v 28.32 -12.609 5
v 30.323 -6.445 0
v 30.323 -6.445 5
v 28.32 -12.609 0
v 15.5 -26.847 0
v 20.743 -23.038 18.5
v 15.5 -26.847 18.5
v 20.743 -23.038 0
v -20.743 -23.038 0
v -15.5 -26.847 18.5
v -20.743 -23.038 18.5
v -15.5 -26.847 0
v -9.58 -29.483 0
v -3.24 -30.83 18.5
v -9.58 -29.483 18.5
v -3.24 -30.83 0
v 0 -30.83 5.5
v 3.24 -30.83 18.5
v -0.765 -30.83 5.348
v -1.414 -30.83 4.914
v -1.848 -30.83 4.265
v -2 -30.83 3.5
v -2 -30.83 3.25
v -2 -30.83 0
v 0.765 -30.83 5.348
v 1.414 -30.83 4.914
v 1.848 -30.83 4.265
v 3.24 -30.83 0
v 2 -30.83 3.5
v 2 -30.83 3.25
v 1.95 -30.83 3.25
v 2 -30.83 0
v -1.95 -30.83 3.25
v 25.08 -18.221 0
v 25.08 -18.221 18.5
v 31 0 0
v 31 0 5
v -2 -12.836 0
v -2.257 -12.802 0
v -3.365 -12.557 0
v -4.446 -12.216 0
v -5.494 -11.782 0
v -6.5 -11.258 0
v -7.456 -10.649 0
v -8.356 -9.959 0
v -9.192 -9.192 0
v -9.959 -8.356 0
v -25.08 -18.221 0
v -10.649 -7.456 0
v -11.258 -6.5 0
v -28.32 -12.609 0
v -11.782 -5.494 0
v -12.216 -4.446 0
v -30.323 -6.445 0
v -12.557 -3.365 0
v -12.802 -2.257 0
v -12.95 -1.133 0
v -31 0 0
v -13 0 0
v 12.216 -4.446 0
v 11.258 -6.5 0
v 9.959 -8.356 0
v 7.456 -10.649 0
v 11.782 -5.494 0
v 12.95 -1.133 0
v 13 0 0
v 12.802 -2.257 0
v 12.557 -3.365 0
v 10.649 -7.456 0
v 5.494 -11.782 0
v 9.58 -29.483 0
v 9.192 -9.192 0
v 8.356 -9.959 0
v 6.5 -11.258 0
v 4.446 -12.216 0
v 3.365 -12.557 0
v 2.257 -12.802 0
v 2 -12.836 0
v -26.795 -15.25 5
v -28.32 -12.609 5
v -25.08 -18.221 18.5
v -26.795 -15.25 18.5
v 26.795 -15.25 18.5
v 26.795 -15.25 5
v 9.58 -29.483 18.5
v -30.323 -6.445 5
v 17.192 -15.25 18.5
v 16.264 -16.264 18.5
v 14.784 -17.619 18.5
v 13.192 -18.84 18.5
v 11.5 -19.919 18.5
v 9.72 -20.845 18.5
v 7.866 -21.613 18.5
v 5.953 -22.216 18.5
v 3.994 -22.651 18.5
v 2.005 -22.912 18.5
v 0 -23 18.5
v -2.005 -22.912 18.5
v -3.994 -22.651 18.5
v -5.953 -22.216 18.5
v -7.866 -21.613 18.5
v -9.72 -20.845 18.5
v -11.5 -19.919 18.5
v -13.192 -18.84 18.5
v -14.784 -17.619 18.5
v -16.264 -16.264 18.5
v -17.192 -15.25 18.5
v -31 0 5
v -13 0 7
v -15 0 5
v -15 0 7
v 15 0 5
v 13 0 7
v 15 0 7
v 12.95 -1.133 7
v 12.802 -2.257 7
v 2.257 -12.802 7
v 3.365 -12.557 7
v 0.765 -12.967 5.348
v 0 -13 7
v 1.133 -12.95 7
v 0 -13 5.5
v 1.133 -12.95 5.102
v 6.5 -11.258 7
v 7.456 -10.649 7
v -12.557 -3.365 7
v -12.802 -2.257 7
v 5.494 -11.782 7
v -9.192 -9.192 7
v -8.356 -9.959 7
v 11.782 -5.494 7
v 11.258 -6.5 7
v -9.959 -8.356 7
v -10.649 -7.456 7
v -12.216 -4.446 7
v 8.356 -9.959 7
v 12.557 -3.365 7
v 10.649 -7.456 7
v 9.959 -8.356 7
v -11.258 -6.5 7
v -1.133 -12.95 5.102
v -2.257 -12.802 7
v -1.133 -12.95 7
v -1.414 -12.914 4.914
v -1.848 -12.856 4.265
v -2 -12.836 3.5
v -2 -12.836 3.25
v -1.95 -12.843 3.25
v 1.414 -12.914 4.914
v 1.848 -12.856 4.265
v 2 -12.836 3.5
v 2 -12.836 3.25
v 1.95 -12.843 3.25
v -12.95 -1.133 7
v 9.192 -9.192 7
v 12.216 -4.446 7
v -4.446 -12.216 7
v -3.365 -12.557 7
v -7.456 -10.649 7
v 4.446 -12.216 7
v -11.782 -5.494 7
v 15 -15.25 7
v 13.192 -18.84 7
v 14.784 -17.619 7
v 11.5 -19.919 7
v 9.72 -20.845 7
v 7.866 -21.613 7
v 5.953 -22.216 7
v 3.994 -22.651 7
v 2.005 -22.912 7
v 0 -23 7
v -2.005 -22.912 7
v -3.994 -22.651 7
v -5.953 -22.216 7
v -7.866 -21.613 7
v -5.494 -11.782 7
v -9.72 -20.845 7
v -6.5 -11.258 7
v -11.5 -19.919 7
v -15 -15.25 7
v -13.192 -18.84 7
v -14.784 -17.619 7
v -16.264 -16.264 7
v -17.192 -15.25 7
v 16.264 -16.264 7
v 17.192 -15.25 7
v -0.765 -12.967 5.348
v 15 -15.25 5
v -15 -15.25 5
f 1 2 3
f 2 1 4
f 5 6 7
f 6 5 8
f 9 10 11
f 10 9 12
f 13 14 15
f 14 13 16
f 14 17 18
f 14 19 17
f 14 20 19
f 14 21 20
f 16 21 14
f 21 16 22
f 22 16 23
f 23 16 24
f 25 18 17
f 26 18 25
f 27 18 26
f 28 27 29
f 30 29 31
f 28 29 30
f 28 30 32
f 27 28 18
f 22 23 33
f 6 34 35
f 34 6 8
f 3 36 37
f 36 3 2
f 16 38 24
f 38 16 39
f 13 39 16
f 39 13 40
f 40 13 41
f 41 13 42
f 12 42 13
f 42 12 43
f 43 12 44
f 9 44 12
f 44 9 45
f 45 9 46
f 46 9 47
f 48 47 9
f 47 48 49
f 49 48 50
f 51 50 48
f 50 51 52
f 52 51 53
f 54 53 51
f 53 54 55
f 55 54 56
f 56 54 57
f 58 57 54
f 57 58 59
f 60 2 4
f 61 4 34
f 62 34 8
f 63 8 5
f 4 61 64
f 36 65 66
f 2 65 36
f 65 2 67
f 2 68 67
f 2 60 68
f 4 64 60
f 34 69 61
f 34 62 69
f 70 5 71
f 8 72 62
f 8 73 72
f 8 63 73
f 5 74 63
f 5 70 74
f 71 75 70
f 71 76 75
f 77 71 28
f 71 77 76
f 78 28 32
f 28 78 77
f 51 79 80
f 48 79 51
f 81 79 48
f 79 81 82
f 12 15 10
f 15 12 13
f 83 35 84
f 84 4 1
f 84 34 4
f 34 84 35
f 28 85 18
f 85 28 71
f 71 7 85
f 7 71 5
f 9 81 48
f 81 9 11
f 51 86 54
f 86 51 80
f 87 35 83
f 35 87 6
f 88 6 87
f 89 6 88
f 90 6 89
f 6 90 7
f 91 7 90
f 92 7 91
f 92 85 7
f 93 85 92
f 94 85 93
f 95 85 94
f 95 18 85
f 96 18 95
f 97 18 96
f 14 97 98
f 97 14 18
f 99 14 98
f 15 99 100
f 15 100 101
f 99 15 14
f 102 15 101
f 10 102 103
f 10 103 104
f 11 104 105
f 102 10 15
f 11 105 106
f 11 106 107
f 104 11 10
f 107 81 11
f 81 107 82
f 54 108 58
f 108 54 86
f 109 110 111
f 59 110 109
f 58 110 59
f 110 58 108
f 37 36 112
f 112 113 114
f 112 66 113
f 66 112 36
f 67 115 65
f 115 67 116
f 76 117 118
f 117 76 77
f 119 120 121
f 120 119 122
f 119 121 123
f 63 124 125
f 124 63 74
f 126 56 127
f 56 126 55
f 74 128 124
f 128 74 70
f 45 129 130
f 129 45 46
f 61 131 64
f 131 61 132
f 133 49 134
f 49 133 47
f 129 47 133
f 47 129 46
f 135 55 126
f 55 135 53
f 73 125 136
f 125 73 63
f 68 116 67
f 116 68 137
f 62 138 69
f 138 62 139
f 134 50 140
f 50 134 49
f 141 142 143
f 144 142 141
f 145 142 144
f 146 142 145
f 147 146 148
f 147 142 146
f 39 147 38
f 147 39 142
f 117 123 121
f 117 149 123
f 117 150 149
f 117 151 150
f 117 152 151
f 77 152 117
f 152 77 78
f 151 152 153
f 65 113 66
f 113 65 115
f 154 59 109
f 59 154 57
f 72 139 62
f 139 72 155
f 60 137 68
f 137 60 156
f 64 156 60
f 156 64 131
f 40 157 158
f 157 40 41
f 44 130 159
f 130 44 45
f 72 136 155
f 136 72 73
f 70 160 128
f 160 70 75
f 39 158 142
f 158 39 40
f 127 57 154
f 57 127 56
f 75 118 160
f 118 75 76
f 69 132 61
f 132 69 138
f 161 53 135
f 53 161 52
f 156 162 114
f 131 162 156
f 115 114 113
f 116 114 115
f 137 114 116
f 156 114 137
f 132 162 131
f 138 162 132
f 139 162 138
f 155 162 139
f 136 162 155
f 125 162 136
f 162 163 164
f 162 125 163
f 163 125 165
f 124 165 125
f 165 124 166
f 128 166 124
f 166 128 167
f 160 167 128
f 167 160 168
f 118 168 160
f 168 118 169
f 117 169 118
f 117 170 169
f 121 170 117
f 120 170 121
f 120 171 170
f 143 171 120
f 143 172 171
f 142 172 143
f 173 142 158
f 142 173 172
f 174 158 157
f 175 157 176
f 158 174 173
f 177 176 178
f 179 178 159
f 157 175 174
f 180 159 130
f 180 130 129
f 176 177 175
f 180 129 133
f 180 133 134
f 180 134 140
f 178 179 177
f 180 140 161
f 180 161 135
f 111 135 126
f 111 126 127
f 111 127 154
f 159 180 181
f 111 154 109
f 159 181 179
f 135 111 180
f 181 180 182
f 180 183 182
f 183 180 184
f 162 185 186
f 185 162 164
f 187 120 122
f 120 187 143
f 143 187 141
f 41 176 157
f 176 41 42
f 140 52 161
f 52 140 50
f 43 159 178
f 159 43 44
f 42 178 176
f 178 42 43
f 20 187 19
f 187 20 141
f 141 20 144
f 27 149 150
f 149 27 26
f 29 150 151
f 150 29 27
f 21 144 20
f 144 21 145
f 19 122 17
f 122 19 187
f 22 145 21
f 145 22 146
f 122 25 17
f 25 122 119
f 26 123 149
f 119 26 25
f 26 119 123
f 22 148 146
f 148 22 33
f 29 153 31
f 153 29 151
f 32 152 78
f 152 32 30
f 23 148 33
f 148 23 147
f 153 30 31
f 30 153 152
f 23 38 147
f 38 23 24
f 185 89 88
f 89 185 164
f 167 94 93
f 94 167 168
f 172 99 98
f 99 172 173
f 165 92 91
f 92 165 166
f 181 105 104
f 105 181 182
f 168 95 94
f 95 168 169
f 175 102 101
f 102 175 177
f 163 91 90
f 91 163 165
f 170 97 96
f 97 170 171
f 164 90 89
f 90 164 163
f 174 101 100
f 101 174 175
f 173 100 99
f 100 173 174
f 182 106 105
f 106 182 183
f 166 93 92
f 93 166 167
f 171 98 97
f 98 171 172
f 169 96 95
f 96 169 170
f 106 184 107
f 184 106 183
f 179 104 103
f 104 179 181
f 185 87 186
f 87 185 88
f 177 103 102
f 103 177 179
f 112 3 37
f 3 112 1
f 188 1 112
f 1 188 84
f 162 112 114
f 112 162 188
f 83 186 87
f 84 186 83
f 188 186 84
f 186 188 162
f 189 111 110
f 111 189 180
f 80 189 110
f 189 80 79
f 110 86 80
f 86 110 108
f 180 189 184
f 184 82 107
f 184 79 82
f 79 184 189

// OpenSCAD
charger_dia = 26;
cable_dia = 4;
charger_thick = 7;
watch_dia = 46;
bracket_width = 30.5;
watch_thick = 11.5;

module charger(charger_dia, charger_thick, cable_dia) {
    union() {
        cylinder(charger_thick, r=charger_dia/2, center=true, $fn=72);
        rotate([90, 0, 0])
            translate([0, 0, 50/2])
            cylinder(50, r=cable_dia/2, center=true, $fn=16);
        translate([0, -50/2, -cable_dia/2])
            cube([cable_dia, 50, charger_thick/2], center=true);
    }
}

module watch(watch_dia, watch_thick, bracket_width) {
    union() {
        cylinder(watch_thick, r=watch_dia/2, center=true, $fn=72);
        translate([watch_dia/2+2, 0, -1])
            cube([20, bracket_width, watch_thick+2], center=true);
        translate([-watch_dia/2-2, 0, -1])
            cube([20, bracket_width, watch_thick+2], center=true);
    }
}

module carveout() {
    translate([0, 0, charger_thick/2])
    union() {
        charger(charger_dia, charger_thick, cable_dia);
        translate([0, 0, (watch_thick+charger_thick)/2])
            watch(watch_dia, watch_thick, bracket_width);
    }
}

module bracket() {
    thickness = watch_thick+charger_thick;
    difference() {
        translate([0, 0, thickness/2])
            difference() {
                cylinder(thickness, r=watch_dia/2+8, center=true);
                translate([0, 20, 0])
                cube([80, 40, thickness], center=true);
            }
        carveout();
    }
}

bracket();
//watch(watch_dia,watch_thick,bracket_width);
